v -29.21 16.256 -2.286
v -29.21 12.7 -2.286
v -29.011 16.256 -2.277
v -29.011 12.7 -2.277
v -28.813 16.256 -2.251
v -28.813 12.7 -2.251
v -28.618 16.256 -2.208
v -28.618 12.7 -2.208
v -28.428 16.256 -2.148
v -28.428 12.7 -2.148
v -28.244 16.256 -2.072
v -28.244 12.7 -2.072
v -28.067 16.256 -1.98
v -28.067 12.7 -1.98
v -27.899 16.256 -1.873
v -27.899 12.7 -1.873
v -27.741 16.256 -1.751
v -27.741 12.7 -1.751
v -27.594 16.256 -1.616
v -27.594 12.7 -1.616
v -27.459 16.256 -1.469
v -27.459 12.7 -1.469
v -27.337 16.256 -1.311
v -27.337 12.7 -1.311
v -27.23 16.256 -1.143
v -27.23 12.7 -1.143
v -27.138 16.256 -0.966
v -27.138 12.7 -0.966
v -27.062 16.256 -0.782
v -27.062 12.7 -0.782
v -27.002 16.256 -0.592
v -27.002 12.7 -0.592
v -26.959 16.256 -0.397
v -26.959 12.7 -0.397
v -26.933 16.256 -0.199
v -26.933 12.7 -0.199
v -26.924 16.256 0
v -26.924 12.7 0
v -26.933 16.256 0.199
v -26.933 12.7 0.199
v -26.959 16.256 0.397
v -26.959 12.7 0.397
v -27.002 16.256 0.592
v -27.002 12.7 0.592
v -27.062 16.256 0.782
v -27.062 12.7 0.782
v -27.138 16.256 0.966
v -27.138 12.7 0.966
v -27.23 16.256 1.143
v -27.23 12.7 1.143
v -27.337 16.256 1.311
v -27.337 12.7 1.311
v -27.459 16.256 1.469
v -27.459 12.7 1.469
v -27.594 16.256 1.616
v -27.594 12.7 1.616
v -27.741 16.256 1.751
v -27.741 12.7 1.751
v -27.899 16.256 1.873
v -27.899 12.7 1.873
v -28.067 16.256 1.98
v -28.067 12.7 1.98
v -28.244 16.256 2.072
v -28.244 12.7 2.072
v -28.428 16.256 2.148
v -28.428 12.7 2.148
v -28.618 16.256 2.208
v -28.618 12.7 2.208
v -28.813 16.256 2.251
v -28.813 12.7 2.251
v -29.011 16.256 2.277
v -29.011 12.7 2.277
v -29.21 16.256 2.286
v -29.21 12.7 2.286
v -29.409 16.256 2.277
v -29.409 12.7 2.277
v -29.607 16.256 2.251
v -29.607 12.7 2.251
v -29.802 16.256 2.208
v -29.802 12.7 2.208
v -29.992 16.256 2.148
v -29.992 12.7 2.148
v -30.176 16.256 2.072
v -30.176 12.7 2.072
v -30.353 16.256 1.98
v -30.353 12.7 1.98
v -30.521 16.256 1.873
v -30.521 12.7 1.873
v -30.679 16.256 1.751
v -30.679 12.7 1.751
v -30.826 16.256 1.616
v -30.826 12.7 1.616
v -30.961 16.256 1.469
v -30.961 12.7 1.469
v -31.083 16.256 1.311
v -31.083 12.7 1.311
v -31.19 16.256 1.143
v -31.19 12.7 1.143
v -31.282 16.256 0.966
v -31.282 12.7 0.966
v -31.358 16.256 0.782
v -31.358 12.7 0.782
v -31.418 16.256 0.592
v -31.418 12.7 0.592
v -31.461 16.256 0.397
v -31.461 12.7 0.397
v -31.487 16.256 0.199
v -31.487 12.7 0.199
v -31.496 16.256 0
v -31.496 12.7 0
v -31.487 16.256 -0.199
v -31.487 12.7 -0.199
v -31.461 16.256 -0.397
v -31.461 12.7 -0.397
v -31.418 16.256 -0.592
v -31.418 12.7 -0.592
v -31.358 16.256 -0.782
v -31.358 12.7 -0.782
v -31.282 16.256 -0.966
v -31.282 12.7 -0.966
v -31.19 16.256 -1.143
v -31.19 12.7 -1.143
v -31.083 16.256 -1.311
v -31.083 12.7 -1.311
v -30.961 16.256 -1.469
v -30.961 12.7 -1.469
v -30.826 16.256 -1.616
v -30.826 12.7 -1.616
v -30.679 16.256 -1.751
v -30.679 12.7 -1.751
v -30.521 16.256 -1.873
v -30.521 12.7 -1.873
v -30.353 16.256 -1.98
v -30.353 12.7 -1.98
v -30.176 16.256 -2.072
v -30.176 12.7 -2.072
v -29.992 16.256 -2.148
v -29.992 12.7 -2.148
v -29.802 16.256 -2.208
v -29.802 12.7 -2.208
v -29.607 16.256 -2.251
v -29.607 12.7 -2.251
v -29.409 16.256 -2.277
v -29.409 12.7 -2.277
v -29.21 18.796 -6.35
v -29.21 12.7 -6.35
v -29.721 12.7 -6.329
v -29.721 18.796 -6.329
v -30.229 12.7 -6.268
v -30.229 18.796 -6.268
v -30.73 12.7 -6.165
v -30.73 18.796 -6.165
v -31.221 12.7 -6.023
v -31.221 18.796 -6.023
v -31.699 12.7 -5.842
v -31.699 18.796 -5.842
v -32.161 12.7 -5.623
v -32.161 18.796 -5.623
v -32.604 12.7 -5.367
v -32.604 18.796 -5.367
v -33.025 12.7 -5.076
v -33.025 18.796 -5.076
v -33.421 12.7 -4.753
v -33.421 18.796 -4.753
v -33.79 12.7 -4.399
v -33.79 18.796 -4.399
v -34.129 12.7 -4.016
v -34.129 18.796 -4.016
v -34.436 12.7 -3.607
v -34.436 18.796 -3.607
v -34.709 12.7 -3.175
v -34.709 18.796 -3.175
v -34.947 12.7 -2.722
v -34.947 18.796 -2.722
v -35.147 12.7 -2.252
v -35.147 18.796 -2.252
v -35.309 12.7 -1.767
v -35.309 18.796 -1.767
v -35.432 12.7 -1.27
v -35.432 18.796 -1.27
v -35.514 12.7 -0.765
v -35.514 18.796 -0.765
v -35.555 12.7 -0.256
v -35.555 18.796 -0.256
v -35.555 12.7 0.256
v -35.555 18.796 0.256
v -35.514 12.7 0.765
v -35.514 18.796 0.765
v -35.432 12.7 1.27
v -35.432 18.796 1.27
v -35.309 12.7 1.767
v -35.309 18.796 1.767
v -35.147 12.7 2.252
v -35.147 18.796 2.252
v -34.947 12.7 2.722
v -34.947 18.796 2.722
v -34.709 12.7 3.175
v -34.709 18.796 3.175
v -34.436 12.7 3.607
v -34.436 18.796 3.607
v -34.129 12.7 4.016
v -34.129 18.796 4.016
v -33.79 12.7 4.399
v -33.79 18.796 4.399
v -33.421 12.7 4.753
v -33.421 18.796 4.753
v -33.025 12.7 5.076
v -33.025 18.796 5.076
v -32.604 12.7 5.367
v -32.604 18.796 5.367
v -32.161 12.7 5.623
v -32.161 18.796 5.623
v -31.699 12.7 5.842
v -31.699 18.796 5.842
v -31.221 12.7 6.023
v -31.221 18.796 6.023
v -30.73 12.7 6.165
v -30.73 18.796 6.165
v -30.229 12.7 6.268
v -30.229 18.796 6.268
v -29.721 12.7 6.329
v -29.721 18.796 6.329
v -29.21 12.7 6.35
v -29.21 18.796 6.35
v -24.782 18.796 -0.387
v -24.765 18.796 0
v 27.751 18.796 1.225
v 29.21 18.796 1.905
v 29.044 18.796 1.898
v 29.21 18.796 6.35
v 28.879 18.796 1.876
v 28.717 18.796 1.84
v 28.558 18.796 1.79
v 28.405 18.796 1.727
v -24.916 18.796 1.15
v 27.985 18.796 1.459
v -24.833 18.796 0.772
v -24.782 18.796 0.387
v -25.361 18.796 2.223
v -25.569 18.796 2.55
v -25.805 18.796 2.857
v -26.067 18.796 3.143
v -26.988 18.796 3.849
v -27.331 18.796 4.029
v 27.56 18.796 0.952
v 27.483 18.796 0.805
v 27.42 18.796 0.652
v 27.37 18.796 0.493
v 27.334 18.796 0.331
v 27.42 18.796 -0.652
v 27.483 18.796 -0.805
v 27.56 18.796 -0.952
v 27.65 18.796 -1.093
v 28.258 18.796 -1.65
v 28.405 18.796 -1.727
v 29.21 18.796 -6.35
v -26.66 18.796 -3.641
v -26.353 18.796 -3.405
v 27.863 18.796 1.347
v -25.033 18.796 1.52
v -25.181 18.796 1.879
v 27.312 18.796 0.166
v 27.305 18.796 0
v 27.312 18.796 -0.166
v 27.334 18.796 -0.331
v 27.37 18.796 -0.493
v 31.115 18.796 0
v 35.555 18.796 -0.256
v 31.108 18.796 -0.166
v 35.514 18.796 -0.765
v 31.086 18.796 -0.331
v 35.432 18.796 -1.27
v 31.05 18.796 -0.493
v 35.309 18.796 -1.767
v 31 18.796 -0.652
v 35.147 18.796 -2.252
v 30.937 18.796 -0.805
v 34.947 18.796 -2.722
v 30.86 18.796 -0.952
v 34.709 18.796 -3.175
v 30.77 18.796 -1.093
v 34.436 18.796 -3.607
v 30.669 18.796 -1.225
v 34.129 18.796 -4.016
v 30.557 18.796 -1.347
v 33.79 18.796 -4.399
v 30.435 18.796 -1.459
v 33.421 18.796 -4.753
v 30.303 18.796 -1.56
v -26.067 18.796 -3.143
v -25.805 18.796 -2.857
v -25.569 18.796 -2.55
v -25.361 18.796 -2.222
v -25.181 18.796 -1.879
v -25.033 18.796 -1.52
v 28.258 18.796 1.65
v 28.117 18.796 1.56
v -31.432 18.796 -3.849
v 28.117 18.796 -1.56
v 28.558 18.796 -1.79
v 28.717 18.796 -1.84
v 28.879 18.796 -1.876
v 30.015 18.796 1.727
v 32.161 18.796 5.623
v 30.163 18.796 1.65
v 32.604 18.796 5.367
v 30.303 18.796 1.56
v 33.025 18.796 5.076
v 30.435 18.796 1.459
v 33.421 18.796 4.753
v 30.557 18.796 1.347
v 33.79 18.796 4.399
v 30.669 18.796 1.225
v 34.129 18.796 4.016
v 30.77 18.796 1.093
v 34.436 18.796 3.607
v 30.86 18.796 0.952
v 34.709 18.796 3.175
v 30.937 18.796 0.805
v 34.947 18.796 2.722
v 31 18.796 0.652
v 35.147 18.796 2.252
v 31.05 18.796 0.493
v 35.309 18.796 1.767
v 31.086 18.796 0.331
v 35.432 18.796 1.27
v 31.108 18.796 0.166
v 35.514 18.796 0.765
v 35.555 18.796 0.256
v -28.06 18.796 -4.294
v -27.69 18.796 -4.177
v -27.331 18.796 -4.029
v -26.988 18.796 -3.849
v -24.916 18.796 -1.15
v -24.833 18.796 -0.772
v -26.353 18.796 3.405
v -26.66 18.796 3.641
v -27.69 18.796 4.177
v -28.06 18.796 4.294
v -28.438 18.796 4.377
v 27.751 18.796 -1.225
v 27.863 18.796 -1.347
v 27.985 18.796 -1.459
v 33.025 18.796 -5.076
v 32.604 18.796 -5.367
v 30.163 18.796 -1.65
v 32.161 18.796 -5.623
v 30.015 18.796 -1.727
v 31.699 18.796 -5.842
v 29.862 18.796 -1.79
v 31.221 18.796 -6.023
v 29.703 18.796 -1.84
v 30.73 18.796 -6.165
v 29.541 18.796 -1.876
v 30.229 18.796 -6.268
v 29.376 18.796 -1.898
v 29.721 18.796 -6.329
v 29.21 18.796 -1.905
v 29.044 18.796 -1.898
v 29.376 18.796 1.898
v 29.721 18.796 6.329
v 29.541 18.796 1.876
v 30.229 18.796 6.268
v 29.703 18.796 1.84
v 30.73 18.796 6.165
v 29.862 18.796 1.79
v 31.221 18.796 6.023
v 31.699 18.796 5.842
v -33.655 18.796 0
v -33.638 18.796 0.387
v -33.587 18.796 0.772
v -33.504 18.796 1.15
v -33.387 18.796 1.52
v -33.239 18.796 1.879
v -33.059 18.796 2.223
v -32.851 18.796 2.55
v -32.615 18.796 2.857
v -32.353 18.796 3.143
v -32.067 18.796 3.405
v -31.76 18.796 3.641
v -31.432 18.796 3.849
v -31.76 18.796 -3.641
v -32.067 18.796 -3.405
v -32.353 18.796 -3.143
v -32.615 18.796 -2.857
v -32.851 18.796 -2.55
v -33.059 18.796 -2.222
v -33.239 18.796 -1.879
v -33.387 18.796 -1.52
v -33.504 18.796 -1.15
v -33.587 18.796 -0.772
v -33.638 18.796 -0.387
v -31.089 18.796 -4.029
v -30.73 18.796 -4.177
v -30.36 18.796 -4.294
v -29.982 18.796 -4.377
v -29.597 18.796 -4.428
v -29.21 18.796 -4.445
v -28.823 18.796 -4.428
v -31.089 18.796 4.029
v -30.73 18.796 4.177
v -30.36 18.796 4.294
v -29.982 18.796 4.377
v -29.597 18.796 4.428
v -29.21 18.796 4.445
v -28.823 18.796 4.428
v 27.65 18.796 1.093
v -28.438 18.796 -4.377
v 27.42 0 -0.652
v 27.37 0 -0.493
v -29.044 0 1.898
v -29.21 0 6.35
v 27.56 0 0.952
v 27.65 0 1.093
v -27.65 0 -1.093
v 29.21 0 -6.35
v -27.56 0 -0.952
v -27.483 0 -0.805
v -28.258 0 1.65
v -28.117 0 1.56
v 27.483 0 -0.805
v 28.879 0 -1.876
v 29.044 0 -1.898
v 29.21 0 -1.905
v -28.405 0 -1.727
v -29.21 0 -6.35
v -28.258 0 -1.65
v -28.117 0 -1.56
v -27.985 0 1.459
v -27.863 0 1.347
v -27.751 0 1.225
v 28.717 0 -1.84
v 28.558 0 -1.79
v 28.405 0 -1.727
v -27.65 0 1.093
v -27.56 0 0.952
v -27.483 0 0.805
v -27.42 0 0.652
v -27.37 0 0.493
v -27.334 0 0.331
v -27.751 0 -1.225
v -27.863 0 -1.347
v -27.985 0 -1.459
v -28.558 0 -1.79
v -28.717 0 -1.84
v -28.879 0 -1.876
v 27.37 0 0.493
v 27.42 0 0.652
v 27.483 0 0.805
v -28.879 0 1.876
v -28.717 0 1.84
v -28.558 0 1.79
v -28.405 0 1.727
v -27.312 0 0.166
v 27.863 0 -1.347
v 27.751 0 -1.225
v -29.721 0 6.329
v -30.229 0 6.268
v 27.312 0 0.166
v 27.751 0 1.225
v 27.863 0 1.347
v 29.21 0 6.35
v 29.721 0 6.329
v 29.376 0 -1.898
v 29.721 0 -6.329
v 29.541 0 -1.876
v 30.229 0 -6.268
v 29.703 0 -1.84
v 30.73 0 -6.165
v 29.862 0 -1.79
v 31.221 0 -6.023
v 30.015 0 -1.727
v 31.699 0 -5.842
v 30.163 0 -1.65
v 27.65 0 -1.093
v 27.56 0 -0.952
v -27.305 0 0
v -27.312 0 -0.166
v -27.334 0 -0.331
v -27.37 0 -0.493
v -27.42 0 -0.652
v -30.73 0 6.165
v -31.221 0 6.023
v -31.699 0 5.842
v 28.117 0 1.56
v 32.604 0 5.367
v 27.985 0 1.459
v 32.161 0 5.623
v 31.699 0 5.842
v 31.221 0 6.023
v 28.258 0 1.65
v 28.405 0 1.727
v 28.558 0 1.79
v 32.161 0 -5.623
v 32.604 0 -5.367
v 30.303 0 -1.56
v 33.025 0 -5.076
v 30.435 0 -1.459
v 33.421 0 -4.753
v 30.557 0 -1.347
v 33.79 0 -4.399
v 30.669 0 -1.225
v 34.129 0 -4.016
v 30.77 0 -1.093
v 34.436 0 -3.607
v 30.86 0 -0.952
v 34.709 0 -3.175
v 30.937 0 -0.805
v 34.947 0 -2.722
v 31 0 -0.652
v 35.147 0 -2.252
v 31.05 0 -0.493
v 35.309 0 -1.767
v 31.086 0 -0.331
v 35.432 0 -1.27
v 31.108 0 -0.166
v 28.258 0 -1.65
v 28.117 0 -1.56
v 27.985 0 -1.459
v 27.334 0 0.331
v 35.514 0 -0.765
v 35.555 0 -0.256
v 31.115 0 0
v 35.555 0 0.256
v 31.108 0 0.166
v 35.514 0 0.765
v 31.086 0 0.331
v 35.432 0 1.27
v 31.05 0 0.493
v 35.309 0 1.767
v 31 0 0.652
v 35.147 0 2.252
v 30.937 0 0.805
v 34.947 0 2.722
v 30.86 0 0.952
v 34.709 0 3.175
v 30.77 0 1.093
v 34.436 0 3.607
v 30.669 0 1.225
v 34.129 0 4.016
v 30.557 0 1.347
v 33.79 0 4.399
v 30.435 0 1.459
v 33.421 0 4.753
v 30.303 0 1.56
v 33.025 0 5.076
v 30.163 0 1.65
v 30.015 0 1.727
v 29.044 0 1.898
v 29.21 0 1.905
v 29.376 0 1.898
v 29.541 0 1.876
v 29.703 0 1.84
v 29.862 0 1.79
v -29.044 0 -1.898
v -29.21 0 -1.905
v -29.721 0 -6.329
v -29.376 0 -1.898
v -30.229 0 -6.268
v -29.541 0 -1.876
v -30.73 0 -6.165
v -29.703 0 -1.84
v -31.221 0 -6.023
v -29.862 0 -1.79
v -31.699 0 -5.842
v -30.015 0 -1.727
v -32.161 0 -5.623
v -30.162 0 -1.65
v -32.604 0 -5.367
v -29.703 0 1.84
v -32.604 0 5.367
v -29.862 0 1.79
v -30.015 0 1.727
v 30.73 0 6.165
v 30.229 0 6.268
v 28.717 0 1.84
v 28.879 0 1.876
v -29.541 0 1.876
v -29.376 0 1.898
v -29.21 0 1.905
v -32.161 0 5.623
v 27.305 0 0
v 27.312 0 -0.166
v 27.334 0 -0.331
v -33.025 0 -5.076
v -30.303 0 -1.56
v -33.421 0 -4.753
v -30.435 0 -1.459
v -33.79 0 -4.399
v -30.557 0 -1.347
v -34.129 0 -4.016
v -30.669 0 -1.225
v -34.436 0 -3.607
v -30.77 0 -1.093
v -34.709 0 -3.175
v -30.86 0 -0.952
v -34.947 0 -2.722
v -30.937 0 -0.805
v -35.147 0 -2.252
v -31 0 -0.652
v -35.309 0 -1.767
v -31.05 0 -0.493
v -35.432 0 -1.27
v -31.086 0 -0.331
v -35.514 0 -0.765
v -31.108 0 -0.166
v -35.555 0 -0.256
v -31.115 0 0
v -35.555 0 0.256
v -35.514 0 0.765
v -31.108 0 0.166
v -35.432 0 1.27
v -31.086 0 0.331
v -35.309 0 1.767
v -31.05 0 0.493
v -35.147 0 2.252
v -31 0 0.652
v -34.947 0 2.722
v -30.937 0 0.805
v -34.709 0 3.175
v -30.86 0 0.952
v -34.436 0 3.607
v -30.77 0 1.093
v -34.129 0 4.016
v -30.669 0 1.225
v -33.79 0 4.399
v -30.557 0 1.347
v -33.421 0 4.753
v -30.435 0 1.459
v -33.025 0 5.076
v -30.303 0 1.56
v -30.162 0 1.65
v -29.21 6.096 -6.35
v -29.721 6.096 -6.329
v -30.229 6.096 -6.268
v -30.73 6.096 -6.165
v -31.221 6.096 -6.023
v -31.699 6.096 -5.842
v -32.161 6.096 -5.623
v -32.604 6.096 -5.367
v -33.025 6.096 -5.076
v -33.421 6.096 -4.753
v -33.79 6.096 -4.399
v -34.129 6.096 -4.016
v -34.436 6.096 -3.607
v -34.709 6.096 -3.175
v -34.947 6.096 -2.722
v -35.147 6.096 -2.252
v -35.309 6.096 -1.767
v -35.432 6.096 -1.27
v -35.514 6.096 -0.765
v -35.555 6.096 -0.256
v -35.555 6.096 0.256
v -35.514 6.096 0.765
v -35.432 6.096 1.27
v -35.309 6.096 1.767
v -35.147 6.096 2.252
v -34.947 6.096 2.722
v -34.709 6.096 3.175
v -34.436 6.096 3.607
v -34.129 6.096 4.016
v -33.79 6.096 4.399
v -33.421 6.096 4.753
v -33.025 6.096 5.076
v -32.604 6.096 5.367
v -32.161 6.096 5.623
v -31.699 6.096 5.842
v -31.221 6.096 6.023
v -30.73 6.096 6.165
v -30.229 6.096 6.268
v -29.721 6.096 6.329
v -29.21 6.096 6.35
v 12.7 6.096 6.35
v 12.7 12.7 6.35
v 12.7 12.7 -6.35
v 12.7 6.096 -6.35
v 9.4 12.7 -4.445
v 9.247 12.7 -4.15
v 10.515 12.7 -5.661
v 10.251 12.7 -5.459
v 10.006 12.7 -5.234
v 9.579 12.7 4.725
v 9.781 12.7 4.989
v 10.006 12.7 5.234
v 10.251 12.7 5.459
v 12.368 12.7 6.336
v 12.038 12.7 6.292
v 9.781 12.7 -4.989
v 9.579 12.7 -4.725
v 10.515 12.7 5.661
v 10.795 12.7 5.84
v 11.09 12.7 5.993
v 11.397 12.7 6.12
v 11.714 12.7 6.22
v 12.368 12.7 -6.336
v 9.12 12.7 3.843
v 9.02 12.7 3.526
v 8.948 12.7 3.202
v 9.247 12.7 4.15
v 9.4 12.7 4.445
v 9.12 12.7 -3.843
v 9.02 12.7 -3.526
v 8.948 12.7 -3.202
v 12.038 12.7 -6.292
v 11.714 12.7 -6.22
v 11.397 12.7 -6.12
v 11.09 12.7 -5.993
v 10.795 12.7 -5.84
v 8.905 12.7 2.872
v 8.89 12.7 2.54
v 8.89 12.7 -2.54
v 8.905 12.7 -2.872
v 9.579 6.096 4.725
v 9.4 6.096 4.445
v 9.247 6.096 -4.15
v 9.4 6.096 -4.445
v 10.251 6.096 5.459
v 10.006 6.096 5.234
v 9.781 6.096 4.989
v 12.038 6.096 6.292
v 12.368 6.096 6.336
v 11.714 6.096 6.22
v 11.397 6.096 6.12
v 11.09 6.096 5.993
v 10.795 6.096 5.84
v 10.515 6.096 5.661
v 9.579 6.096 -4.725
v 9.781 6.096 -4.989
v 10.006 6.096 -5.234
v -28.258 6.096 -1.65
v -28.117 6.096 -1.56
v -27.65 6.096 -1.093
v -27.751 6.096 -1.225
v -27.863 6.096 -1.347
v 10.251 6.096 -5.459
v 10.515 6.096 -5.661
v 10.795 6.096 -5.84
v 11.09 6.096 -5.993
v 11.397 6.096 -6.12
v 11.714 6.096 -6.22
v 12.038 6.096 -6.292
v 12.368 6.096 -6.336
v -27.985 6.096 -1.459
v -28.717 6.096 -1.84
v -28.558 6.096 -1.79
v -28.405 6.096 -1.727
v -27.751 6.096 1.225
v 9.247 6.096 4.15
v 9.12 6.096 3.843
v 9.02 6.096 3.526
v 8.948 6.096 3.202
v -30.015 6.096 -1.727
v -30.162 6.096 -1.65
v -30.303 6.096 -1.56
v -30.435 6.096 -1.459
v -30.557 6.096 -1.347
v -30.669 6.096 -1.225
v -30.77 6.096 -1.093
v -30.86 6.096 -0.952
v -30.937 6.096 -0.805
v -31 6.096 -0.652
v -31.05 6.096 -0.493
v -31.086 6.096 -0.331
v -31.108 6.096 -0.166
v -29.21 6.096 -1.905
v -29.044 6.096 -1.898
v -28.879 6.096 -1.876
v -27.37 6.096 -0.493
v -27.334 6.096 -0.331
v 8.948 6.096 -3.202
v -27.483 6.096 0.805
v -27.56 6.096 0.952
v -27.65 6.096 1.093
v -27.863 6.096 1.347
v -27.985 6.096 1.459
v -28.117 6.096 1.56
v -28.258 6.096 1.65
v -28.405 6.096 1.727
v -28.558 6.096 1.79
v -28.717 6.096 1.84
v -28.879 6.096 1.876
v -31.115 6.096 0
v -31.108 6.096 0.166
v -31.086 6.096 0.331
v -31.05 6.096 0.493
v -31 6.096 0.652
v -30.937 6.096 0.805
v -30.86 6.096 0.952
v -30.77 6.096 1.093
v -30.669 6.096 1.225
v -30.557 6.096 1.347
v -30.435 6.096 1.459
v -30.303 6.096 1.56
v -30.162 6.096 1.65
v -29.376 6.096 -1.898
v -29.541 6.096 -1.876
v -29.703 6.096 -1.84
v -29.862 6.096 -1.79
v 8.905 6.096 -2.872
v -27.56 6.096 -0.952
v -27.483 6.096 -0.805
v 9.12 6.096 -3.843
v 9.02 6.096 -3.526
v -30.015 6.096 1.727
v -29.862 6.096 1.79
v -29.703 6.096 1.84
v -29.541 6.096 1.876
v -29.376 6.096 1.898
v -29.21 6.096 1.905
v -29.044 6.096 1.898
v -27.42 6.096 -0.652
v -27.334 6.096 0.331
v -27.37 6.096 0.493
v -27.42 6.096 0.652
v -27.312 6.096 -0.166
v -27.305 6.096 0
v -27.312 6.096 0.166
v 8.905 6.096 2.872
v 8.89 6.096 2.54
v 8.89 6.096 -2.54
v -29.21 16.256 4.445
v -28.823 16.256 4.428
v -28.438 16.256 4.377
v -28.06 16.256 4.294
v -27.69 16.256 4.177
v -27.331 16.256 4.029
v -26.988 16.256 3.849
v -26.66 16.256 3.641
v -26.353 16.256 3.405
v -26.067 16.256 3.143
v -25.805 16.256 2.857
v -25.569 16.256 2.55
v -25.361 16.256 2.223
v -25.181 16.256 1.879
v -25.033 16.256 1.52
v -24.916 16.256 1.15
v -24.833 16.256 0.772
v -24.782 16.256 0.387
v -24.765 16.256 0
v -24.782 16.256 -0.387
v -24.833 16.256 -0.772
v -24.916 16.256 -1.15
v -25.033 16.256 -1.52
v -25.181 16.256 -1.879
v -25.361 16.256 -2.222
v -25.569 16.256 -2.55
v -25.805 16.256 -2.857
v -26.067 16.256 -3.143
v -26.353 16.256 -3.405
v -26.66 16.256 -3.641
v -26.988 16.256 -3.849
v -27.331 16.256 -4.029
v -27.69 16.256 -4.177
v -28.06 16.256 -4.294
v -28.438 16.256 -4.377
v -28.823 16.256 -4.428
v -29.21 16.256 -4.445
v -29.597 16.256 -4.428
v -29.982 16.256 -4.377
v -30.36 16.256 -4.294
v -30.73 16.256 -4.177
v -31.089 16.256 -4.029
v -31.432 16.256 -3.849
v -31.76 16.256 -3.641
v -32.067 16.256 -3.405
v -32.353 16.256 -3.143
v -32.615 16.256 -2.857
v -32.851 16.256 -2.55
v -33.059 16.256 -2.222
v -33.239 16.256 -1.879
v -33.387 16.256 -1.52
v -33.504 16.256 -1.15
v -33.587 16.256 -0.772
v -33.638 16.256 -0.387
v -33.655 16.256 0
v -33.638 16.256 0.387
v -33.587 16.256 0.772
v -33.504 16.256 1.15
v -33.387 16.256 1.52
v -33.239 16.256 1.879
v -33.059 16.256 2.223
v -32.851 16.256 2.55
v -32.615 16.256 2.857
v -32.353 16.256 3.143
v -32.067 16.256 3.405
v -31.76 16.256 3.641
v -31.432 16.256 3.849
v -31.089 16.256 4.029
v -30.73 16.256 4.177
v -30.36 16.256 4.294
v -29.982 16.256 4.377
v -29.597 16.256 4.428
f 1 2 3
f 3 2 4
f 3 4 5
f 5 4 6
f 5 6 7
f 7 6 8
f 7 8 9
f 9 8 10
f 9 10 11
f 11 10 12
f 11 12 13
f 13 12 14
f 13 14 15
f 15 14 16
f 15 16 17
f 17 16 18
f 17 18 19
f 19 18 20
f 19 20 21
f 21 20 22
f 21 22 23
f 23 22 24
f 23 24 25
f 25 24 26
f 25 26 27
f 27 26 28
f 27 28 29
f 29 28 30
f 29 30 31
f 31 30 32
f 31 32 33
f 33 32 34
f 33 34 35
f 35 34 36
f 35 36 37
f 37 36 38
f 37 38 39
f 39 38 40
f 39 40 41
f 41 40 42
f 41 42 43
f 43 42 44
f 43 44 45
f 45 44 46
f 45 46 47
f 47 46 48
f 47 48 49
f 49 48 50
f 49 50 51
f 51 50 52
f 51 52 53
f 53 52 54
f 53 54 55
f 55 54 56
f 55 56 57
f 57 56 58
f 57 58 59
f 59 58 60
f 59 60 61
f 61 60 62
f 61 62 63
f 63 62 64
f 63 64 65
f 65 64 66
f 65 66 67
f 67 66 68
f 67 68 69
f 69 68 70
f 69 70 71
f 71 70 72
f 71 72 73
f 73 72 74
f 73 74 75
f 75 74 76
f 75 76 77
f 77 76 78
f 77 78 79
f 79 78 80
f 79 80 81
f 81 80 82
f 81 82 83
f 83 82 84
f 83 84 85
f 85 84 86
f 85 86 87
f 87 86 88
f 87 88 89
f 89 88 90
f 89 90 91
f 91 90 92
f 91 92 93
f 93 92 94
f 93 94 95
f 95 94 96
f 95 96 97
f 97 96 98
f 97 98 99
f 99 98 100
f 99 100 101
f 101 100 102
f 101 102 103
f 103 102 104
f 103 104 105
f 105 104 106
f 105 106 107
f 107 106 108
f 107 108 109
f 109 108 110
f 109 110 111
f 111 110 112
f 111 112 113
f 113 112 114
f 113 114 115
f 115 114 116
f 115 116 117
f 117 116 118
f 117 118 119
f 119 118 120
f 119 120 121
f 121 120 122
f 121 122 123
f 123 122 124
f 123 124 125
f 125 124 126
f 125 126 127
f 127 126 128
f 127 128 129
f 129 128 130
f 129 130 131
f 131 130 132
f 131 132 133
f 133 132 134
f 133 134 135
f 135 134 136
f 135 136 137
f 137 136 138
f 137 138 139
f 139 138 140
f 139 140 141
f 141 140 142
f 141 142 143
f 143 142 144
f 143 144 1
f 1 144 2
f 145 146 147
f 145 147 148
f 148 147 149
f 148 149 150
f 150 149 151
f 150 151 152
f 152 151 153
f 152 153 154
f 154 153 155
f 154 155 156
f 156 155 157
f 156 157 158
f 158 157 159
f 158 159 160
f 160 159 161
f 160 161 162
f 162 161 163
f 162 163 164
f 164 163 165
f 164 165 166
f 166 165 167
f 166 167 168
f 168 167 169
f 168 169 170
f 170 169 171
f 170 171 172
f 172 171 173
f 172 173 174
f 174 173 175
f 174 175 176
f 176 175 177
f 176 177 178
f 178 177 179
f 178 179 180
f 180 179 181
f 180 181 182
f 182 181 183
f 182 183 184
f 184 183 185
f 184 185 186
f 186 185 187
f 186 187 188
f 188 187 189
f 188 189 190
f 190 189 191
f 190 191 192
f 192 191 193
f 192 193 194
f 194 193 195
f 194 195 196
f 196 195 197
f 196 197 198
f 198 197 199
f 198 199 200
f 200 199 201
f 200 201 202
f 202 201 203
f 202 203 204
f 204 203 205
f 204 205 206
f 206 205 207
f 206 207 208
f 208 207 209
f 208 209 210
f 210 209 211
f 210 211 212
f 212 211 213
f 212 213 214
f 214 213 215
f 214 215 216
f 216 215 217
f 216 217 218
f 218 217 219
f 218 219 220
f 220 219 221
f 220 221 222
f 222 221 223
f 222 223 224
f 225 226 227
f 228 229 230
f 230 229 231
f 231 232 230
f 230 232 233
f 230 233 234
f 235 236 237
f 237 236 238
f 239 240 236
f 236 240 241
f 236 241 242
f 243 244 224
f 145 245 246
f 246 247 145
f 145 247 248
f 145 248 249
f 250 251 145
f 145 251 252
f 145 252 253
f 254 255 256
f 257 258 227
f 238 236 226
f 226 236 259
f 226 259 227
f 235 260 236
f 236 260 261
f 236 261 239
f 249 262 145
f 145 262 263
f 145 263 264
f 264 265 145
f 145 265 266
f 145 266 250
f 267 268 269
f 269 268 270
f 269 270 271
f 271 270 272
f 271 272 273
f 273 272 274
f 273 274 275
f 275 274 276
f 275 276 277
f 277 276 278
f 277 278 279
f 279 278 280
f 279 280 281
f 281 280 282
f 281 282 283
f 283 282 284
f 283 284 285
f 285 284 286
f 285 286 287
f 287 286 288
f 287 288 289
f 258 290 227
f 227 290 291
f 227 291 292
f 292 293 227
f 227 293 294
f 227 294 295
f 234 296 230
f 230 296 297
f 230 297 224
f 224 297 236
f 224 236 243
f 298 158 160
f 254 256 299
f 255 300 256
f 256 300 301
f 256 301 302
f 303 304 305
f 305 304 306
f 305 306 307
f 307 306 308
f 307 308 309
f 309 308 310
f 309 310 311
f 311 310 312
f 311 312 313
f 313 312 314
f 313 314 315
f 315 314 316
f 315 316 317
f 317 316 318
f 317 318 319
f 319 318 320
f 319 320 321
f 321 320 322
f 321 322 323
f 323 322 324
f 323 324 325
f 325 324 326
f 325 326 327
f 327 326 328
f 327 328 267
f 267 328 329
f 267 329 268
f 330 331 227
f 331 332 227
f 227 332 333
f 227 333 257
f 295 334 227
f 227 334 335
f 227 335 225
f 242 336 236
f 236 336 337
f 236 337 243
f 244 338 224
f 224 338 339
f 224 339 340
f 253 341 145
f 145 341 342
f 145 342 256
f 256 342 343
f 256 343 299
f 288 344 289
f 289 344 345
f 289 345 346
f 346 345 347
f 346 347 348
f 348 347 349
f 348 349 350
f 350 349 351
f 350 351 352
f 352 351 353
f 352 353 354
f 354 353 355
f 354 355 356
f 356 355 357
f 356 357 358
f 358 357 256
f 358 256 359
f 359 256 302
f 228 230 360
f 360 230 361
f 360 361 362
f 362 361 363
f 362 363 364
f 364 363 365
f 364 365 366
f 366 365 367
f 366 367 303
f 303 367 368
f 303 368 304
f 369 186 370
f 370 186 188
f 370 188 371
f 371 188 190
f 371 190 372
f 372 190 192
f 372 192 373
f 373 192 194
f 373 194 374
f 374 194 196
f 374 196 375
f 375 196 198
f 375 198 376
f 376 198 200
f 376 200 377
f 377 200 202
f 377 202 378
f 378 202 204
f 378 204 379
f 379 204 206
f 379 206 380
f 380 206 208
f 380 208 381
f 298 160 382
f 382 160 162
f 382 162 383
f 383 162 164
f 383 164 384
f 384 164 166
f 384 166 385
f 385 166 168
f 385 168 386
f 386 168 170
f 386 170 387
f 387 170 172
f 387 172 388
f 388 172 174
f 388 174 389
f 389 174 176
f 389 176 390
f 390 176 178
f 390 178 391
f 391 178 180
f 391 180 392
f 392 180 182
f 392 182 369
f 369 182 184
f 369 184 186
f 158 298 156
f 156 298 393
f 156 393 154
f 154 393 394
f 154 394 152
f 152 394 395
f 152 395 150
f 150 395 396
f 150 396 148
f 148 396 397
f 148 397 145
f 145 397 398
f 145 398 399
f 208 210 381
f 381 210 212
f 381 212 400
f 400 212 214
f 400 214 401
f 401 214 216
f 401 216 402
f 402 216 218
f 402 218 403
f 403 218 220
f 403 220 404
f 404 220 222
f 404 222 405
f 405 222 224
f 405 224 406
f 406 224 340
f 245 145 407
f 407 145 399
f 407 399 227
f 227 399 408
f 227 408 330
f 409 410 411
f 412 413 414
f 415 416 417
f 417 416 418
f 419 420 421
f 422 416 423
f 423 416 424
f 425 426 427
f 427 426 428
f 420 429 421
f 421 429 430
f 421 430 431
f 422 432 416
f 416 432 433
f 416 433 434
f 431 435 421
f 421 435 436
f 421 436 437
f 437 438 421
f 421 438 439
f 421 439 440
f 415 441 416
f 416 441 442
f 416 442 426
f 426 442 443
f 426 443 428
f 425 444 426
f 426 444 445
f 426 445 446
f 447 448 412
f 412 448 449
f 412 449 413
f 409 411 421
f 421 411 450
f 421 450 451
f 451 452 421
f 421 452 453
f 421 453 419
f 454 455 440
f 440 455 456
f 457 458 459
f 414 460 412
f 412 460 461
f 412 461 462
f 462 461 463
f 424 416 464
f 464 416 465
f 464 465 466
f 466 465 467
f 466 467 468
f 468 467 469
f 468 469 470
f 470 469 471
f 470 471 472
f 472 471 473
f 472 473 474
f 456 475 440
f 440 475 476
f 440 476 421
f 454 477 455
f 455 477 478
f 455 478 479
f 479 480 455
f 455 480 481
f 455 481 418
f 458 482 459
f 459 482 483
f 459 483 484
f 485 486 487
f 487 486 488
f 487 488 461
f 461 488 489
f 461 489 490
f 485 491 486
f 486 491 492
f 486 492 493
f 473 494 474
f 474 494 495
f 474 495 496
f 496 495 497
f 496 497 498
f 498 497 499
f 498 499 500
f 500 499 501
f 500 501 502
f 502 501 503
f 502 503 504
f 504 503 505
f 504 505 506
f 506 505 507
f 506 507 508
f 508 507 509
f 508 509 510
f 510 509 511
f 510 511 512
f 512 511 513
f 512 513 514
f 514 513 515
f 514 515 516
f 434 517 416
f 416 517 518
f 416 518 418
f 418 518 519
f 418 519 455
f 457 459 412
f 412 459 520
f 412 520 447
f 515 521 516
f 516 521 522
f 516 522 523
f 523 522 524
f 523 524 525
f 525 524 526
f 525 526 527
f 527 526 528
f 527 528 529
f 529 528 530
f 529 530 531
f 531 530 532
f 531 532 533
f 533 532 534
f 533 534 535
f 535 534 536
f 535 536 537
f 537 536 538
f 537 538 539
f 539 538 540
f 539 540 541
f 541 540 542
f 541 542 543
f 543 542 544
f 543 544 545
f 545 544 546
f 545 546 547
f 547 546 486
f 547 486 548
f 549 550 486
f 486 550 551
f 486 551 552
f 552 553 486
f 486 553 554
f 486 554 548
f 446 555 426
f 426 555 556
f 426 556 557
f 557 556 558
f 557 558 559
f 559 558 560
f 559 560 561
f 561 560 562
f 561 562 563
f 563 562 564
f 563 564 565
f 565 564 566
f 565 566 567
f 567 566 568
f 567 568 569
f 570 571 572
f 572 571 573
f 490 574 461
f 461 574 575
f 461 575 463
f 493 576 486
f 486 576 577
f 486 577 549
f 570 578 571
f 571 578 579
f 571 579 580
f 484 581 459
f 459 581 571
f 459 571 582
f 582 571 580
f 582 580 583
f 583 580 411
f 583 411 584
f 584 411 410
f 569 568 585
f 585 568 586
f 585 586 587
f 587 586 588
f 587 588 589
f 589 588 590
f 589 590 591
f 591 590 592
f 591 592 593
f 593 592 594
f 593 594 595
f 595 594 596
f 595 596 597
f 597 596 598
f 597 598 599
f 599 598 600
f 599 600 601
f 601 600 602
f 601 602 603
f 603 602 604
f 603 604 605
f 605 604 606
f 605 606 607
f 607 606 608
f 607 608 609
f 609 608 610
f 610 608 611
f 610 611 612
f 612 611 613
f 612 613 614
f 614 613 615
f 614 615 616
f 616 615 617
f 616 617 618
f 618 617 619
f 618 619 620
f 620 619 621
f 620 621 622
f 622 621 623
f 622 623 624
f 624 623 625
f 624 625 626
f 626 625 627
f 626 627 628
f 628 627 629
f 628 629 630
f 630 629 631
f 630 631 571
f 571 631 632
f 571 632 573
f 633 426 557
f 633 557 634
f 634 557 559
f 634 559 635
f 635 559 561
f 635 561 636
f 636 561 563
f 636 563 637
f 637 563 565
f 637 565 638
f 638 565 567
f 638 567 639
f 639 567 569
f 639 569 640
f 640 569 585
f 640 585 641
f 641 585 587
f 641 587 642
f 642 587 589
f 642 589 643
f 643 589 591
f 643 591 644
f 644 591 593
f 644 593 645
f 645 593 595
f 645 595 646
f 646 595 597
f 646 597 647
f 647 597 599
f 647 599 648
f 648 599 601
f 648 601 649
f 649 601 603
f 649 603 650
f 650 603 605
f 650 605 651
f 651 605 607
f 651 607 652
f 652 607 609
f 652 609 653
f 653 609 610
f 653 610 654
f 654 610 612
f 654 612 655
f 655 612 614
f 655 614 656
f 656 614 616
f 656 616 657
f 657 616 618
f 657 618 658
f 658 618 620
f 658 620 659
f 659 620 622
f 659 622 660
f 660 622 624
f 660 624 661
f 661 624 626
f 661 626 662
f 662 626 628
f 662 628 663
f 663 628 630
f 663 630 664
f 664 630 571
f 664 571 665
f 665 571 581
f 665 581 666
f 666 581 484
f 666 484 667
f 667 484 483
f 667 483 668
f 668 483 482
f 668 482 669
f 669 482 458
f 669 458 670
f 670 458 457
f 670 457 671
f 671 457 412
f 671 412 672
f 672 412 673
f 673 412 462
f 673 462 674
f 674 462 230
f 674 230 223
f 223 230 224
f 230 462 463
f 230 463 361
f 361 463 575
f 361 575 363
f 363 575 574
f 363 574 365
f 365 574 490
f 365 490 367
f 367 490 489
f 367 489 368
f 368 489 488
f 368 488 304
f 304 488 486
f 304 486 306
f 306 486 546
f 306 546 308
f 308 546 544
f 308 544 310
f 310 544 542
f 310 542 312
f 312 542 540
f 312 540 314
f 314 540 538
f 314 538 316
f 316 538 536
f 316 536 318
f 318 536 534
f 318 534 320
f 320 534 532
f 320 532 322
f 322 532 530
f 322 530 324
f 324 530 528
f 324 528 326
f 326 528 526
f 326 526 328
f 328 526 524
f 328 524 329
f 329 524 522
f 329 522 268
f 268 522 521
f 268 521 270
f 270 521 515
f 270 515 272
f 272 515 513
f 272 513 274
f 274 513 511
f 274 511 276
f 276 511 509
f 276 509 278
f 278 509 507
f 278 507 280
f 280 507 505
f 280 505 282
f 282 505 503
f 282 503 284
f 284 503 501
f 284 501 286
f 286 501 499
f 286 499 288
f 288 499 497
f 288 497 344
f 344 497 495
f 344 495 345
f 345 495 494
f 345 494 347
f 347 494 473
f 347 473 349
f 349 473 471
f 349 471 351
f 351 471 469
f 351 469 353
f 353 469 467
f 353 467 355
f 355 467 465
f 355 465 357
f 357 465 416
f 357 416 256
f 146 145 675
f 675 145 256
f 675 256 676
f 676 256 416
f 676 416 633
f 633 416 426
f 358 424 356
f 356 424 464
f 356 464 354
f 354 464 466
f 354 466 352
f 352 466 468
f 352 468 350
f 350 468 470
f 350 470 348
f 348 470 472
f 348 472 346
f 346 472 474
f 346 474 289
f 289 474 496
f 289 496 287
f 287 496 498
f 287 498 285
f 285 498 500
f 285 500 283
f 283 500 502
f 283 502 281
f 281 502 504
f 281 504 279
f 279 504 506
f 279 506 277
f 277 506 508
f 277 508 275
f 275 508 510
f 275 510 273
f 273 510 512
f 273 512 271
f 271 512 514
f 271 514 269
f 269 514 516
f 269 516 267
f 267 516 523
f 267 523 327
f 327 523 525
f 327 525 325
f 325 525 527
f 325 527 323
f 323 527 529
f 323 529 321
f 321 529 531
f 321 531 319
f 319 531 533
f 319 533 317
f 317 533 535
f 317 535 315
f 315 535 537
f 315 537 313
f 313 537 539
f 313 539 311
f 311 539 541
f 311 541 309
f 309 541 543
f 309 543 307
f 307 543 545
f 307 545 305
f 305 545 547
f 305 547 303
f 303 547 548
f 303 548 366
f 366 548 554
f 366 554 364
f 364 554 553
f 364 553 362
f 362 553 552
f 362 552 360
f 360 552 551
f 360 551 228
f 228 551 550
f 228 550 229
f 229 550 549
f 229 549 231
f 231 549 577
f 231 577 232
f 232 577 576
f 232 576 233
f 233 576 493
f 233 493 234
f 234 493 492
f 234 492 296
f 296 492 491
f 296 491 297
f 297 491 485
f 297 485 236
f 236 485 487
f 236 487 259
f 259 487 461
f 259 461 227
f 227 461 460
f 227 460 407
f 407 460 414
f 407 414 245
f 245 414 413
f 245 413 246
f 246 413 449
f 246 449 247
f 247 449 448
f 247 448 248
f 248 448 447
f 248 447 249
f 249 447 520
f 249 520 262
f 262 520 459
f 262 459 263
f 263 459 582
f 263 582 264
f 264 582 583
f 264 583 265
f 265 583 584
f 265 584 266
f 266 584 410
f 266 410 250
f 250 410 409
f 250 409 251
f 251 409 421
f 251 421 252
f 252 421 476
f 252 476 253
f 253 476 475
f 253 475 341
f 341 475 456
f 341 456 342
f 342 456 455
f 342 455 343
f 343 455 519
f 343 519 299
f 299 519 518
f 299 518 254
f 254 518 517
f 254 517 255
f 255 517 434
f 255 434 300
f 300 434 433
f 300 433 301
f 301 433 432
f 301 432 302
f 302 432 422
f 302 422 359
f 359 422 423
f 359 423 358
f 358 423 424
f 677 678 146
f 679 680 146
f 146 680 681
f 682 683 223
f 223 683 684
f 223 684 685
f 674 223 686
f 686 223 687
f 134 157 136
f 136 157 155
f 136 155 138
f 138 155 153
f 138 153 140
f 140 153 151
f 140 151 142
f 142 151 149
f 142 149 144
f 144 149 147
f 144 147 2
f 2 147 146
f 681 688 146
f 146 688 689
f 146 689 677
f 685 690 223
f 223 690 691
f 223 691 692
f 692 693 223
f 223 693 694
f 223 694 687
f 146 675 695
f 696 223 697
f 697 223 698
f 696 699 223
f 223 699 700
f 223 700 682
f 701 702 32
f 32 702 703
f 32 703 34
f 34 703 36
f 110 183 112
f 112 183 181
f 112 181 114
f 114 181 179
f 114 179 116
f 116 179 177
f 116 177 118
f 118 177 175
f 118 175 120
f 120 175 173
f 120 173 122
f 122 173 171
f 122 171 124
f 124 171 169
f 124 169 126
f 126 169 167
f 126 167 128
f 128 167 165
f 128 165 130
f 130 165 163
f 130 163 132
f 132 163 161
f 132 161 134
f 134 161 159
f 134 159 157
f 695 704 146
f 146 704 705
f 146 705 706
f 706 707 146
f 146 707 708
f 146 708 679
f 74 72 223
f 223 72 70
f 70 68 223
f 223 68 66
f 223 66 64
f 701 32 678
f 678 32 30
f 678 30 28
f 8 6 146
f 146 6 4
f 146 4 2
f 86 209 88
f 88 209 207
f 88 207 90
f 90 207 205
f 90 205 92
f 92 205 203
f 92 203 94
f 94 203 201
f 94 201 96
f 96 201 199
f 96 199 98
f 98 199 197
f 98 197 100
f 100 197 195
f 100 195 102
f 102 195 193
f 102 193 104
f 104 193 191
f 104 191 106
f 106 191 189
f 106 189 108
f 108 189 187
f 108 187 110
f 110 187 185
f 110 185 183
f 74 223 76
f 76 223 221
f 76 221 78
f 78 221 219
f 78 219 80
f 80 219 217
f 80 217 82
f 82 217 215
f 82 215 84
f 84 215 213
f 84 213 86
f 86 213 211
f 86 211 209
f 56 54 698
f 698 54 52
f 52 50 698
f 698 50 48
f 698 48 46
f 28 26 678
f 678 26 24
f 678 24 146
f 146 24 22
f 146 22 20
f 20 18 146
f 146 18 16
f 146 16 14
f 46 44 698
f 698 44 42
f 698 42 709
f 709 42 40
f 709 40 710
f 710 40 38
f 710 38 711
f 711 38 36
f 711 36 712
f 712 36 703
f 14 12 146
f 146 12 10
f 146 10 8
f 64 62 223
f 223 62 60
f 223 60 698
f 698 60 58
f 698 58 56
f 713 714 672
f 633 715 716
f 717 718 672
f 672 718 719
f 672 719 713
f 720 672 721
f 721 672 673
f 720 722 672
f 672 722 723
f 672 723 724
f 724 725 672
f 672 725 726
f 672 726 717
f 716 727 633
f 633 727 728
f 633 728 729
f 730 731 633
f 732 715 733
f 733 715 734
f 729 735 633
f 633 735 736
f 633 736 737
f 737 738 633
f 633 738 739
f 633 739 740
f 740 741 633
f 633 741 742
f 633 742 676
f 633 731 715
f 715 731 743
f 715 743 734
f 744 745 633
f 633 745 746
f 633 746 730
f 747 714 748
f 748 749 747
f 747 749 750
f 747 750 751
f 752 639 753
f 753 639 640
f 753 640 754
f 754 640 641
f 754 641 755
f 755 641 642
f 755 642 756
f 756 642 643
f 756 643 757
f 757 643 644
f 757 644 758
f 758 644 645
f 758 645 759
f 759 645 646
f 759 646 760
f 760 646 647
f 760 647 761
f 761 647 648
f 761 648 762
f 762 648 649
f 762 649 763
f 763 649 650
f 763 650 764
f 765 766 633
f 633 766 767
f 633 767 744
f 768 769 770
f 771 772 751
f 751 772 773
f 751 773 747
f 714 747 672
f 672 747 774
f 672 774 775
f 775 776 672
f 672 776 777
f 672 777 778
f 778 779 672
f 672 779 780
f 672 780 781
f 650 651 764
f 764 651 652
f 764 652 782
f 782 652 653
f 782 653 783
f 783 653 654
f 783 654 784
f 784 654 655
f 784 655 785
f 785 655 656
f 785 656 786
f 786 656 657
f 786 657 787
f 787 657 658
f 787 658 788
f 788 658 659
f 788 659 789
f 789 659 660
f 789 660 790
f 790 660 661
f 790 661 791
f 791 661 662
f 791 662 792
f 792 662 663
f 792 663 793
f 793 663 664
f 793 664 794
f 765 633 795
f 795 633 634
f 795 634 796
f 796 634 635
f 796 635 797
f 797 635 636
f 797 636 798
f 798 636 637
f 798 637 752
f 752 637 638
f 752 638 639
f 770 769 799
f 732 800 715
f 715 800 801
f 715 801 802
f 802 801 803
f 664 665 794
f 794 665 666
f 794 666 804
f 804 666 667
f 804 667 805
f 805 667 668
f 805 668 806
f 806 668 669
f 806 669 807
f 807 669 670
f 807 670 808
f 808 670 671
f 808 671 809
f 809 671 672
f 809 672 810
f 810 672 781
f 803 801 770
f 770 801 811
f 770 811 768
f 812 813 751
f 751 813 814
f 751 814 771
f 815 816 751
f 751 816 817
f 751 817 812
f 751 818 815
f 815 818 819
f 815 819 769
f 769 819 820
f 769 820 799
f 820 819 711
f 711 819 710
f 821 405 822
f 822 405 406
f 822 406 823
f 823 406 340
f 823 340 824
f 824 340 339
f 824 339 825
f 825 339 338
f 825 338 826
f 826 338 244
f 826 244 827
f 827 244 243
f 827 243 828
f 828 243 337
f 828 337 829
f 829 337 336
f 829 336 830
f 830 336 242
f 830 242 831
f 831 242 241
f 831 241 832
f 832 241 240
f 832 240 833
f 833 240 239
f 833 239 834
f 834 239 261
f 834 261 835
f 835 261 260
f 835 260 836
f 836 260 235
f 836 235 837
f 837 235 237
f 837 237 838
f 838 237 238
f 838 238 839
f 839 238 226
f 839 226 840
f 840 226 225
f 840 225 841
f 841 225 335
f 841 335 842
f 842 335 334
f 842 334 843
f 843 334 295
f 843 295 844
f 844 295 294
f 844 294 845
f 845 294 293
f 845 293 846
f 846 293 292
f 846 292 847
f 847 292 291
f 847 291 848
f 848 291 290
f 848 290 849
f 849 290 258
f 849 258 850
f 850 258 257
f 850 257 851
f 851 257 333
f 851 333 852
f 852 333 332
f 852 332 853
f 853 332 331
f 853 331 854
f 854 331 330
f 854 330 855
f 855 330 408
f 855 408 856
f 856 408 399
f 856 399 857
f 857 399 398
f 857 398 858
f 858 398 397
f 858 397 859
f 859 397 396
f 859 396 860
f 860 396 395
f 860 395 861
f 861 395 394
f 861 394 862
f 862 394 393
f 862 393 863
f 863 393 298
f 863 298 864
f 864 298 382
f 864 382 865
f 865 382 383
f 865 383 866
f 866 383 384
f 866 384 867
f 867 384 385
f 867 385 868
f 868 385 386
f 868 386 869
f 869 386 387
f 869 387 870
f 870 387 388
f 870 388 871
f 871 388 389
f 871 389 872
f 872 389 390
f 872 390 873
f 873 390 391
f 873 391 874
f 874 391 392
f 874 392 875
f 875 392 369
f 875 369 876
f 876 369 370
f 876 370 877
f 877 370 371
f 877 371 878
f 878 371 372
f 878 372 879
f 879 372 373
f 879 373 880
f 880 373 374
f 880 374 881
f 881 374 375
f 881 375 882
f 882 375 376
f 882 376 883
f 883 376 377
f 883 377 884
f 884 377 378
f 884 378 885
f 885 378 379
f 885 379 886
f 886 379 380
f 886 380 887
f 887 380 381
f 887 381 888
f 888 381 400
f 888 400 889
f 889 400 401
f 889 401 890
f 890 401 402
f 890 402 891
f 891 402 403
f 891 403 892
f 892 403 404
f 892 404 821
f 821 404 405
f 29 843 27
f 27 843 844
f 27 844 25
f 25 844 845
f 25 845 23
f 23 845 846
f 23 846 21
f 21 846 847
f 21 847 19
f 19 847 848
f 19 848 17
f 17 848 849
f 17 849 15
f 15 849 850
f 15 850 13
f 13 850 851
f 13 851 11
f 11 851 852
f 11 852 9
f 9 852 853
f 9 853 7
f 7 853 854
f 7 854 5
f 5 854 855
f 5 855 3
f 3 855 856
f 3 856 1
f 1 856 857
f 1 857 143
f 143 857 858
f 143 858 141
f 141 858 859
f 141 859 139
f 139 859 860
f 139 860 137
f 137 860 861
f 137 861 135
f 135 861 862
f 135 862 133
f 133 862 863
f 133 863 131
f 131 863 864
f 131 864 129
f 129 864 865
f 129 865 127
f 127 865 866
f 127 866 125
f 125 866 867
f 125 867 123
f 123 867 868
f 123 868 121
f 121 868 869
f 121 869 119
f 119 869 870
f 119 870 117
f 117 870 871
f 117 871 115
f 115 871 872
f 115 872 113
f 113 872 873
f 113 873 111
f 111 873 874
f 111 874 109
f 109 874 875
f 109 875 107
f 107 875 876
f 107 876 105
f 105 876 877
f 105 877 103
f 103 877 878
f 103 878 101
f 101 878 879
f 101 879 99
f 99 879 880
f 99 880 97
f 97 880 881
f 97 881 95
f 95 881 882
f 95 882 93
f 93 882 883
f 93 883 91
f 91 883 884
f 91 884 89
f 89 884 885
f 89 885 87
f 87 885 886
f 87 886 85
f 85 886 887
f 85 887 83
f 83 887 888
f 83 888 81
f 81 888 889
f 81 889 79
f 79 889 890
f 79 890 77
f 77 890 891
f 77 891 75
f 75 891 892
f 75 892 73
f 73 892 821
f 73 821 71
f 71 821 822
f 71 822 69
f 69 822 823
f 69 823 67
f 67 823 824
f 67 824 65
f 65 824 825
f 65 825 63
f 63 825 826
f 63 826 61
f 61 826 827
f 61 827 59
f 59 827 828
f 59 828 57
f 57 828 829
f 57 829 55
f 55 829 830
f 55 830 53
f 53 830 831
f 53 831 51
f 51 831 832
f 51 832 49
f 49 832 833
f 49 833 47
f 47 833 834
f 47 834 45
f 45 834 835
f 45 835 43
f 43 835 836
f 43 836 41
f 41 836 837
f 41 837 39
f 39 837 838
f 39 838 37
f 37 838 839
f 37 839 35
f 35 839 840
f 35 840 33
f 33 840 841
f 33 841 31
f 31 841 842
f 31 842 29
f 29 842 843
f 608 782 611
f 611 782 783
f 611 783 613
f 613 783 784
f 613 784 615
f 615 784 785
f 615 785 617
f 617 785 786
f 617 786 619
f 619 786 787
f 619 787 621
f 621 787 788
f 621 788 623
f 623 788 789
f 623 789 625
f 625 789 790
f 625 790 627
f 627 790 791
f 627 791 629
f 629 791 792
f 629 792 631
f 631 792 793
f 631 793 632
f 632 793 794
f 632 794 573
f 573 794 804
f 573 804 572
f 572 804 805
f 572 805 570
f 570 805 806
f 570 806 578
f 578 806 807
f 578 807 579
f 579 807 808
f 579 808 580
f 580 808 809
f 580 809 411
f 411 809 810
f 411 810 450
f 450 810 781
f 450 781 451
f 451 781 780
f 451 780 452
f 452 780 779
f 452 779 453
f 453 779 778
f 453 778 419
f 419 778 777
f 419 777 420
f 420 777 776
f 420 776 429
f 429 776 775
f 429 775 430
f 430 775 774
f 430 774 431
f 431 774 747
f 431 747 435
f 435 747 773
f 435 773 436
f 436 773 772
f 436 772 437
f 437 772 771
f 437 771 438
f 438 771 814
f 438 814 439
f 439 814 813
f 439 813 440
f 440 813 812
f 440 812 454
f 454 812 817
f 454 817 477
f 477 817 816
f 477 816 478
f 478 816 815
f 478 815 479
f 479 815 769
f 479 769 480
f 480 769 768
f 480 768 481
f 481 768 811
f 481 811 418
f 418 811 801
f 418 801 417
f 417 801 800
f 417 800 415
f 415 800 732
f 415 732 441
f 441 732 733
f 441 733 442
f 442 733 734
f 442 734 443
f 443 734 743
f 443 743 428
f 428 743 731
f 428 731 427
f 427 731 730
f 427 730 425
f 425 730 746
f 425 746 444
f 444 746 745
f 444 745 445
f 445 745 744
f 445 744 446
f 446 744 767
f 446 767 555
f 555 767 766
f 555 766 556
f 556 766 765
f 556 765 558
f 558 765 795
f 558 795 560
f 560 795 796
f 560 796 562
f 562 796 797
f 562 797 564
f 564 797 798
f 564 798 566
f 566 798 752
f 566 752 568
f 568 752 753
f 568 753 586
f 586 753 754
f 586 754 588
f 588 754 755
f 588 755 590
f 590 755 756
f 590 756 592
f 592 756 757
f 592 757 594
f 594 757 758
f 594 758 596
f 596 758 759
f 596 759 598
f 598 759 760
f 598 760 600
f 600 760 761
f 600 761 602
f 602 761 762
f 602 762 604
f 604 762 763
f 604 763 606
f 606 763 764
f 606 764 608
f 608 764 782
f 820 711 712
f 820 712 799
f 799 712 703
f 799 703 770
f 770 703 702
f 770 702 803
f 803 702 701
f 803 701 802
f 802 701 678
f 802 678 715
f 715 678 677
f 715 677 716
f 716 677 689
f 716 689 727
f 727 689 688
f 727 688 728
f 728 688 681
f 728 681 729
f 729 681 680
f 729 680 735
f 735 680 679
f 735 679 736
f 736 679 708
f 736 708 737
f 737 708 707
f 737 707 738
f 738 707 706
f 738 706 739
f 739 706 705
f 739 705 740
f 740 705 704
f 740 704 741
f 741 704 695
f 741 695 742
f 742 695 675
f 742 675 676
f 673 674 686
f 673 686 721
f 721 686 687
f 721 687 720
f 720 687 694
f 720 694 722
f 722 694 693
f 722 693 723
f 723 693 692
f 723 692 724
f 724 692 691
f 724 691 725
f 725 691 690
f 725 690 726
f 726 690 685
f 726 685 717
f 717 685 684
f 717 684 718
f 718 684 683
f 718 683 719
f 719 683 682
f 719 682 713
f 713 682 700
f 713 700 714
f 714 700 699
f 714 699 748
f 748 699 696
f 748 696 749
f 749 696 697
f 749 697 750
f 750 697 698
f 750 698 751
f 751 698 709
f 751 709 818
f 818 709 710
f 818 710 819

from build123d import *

# Parameters (mm, degrees)
SKETCH1_R           = 2.286
SKETCH1_R_2         = 1.905
BOSS_EXTRUDE1_DEPTH = 18.796
SKETCH2_W           = 44.45
SKETCH2_H           = 6.604
CUT_EXTRUDE1_DEPTH  = 43.179298429
SKETCH3_R           = 4.445
CUT_EXTRUDE2_DEPTH  = 2.54
BOSS_EXTRUDE2_START = -6.096
SKETCH4_R           = 2.286
SKETCH4_R_2         = 1.905
BOSS_EXTRUDE2_DEPTH = 6.096
FILLET1_R           = 3.81


with BuildPart() as part:
    # Sketch1 → Boss-Extrude1 (new body)
    with BuildSketch(Plane(origin=(0, 0, 0), x_dir=(1, 0, 0), z_dir=(0, 1, 0))):
        with BuildLine():
            Line((-29.21, 6.35), (29.21, 6.35))
            ThreePointArc((29.21, 6.35), (35.56, 0), (29.21, -6.35))
            Line((29.21, -6.35), (-29.21, -6.35))
            ThreePointArc((-29.21, -6.35), (-35.56, 0), (-29.21, 6.35))
        make_face()
        with Locations(Location((-29.21, 0, 0), (0, 0, 270))):
            Circle(SKETCH1_R, mode=Mode.SUBTRACT)
        with Locations(Location((29.21, 0, 0), (0, 0, 270))):
            Circle(SKETCH1_R_2, mode=Mode.SUBTRACT)
    extrude(amount=BOSS_EXTRUDE1_DEPTH)

    # Sketch2 → Cut-Extrude1 (cut, through all)
    with BuildSketch(Plane.XY.offset(6.35)):
        with Locations((-13.335, 9.398)):
            Rectangle(SKETCH2_W, SKETCH2_H)
    extrude(amount=-CUT_EXTRUDE1_DEPTH, mode=Mode.SUBTRACT)

    # Sketch3 → Cut-Extrude2 (cut)
    with BuildSketch(Plane(origin=(0, 18.796, 0), x_dir=(1, 0, 0), z_dir=(0, 1, 0))):
        with Locations(Location((-29.21, 0, 0), (0, 0, 270))):
            Circle(SKETCH3_R)
    extrude(amount=-CUT_EXTRUDE2_DEPTH, mode=Mode.SUBTRACT)

    # Sketch4 → Boss-Extrude2 (add)
    with BuildSketch(Plane(origin=(0, 6.096, 0), x_dir=(1, 0, 0), z_dir=(0, 1, 0)).offset(BOSS_EXTRUDE2_START)):
        with Locations(Location((-29.21, 0, 0), (0, 0, 270))):
            Circle(SKETCH4_R)
        with Locations(Location((-29.21, 0, 0), (0, 0, 180))):
            Circle(SKETCH4_R_2, mode=Mode.SUBTRACT)
    extrude(amount=BOSS_EXTRUDE2_DEPTH)

    # Fillet1
    fillet1_edges = [part.edges().sort_by_distance(p)[0] for p in [
        (8.89, 9.398, 6.35),
        (8.89, 9.398, -6.35),
    ]]
    fillet(fillet1_edges, radius=FILLET1_R)


solid = part.part
